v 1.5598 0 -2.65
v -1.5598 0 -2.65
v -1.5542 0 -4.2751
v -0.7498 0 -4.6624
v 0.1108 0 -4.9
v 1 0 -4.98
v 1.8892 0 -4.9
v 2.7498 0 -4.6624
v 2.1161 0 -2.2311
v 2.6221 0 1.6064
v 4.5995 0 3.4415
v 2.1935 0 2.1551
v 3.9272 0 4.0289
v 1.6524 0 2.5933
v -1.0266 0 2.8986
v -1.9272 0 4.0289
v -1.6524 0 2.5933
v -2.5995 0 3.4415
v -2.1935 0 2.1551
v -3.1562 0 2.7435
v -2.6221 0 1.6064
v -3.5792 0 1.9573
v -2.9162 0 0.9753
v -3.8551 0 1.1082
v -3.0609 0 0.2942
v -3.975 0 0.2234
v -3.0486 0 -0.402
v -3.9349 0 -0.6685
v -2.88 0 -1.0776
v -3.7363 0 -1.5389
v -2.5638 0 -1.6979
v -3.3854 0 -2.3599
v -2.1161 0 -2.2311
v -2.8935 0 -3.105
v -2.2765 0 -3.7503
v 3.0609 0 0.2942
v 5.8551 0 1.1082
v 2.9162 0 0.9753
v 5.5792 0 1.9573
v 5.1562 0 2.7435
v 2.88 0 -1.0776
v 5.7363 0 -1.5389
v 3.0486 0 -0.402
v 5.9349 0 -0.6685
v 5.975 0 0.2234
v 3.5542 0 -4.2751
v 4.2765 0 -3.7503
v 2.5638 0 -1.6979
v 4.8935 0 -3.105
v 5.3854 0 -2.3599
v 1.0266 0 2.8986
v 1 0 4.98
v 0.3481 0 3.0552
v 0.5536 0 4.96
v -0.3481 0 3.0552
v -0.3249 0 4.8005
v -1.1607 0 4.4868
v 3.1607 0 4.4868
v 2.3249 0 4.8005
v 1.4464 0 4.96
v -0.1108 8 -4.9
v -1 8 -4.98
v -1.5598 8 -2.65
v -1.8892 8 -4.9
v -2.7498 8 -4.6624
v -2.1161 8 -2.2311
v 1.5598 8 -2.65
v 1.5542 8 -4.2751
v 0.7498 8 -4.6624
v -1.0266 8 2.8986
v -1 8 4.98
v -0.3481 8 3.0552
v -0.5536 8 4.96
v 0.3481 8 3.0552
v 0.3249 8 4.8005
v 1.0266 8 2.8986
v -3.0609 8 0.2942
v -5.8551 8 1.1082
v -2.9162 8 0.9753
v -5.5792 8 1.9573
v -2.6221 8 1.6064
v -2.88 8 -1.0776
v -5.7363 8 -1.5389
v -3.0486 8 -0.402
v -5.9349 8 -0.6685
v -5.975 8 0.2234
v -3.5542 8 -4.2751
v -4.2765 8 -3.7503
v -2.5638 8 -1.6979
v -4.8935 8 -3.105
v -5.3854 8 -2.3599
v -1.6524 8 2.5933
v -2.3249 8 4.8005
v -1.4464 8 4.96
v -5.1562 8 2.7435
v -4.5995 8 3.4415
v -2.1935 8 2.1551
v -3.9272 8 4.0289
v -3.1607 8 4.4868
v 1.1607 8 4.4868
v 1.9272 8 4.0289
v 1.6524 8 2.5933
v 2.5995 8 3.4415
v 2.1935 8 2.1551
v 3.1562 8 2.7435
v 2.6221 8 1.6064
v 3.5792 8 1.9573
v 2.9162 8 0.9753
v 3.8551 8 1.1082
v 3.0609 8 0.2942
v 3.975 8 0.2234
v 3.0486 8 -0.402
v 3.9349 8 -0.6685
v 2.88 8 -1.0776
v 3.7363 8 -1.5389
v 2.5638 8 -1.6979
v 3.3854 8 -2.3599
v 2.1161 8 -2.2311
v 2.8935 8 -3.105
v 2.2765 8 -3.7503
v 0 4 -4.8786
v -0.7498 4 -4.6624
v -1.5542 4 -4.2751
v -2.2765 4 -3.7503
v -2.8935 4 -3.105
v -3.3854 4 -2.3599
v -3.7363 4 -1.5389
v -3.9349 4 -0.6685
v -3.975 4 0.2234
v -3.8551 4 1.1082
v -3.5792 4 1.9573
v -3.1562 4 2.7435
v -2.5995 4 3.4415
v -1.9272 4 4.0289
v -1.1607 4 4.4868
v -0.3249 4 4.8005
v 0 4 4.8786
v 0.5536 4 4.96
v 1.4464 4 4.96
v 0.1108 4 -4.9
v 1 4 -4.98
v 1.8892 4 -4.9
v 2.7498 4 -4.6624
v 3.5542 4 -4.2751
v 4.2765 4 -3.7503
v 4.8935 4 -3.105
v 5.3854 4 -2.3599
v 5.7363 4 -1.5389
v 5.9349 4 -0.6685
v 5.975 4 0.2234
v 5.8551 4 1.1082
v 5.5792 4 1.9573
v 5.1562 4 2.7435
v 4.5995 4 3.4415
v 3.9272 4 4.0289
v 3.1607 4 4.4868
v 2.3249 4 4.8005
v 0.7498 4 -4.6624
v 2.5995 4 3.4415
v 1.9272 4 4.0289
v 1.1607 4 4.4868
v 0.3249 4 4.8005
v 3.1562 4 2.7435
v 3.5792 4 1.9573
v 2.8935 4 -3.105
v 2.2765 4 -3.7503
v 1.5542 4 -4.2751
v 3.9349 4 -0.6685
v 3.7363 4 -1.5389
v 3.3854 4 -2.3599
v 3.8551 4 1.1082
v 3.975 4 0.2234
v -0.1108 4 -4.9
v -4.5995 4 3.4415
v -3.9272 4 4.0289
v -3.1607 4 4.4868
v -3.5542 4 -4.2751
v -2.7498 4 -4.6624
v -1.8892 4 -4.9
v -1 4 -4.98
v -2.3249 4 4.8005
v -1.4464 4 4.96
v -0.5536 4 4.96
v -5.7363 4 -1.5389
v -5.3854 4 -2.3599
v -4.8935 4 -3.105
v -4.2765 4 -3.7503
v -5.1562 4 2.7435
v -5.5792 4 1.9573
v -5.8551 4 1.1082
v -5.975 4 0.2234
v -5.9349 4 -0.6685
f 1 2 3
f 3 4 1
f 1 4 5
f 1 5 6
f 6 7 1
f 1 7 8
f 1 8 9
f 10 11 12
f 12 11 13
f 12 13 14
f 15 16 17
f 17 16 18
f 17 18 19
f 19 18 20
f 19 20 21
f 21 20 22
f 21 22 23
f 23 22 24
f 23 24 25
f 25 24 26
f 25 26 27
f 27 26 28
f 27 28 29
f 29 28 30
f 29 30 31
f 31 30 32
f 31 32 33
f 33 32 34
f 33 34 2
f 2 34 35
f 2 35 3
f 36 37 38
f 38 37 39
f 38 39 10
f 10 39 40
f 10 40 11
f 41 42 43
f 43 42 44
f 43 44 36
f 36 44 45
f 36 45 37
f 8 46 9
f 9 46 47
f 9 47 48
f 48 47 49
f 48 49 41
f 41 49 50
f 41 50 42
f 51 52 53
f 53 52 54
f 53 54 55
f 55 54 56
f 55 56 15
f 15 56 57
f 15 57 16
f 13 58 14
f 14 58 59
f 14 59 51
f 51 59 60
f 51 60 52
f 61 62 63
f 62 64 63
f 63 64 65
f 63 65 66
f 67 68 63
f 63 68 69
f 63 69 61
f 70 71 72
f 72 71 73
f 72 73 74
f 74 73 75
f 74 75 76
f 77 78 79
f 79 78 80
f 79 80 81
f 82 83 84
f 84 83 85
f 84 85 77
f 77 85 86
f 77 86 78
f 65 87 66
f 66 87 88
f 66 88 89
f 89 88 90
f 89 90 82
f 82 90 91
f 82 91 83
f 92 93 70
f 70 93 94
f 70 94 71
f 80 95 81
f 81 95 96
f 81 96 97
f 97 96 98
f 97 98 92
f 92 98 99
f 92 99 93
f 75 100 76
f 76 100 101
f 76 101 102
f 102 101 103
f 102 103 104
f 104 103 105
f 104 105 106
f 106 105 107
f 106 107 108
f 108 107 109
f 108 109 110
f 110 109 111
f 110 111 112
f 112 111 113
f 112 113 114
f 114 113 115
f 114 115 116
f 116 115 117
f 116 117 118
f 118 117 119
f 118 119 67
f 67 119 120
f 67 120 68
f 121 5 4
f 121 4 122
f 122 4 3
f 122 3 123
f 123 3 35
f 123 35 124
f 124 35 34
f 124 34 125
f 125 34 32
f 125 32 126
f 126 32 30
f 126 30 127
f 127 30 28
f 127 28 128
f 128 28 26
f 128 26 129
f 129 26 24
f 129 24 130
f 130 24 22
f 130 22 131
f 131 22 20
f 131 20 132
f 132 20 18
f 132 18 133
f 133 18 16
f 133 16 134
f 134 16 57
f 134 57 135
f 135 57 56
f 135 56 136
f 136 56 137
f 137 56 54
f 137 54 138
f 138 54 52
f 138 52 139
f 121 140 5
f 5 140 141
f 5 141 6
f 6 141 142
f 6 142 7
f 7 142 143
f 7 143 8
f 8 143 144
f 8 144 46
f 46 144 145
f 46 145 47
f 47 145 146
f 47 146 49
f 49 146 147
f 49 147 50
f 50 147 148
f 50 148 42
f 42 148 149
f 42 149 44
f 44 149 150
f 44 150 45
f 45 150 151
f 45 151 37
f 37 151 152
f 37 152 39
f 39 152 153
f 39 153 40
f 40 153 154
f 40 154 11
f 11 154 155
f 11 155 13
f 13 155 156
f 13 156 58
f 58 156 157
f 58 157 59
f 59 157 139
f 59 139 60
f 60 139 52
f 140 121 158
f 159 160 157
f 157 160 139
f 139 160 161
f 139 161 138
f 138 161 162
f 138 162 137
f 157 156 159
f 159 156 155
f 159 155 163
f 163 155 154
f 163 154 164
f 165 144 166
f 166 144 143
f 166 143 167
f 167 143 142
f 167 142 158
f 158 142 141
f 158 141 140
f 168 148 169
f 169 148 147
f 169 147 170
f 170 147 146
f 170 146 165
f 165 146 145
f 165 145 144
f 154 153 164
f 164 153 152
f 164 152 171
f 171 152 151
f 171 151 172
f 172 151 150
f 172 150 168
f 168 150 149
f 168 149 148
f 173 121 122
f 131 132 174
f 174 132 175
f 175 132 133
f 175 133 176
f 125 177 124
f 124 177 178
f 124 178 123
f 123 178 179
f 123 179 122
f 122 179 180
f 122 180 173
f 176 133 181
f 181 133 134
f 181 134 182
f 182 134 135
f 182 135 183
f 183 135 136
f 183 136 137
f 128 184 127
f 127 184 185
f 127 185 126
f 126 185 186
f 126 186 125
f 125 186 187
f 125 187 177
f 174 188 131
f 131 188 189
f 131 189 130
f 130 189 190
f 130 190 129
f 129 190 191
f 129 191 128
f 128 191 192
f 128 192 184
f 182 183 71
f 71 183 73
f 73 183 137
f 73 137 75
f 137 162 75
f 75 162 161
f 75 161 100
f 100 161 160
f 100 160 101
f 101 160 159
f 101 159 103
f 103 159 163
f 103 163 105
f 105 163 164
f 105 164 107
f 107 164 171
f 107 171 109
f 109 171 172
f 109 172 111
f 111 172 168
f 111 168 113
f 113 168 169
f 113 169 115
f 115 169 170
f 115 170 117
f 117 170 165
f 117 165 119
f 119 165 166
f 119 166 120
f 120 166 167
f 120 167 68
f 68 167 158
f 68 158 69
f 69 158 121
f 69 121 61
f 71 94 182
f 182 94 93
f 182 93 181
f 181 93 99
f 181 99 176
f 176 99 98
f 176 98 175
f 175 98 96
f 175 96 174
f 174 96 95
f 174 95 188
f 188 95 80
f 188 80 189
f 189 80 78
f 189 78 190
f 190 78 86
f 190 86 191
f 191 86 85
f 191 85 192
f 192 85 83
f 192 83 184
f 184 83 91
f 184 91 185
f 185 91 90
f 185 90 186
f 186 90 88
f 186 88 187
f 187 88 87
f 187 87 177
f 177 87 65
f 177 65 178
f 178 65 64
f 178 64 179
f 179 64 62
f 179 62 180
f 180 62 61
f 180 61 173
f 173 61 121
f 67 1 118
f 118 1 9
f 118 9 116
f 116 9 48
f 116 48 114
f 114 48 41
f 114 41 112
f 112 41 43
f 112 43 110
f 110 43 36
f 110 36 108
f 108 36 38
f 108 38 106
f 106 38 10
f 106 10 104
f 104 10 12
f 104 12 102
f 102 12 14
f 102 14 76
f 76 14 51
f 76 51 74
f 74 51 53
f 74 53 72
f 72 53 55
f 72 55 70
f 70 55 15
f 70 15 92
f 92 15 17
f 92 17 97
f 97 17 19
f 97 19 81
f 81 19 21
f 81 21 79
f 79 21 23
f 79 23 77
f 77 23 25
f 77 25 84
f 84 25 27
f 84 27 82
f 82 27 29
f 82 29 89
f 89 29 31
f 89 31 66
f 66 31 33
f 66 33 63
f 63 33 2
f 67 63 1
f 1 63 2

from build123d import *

# Parameters (mm, degrees)
CROQUIS1_R              = 4.98
SALIENTE_EXTRUIR1_DEPTH = 4
CROQUIS2_R              = 4.98
SALIENTE_EXTRUIR2_DEPTH = 4
CORTAR_EXTRUIR1_DEPTH   = 12.160680983


with BuildPart() as part:
    # Croquis1 → Saliente-Extruir1 (new body)
    with BuildSketch(Plane(origin=(0, 0, 0), x_dir=(1, 0, 0), z_dir=(0, 1, 0))):
        with Locations(Location((1, 0, 0), (0, 0, 270))):
            Circle(CROQUIS1_R)
    extrude(amount=SALIENTE_EXTRUIR1_DEPTH)

    # Croquis2 → Saliente-Extruir2 (add)
    with BuildSketch(Plane(origin=(0, 4, 0), x_dir=(1, 0, 0), z_dir=(0, 1, 0))):
        with Locations(Location((-1, 0, 0), (0, 0, 78.416067345))):
            Circle(CROQUIS2_R)
    extrude(amount=SALIENTE_EXTRUIR2_DEPTH)

    # Croquis3 → Cortar-Extruir1 (cut, through all)
    with BuildSketch(Plane(origin=(0, 0, 0), x_dir=(1, 0, 0), z_dir=(0, 1, 0))):
        with BuildLine():
            Line((-1.559847749, 2.65), (1.559847749, 2.65))
            ThreePointArc((1.559847749, 2.65), (0, -3.075), (-1.559847749, 2.65))
        make_face()
    extrude(amount=CORTAR_EXTRUIR1_DEPTH, mode=Mode.SUBTRACT)


solid = part.part
